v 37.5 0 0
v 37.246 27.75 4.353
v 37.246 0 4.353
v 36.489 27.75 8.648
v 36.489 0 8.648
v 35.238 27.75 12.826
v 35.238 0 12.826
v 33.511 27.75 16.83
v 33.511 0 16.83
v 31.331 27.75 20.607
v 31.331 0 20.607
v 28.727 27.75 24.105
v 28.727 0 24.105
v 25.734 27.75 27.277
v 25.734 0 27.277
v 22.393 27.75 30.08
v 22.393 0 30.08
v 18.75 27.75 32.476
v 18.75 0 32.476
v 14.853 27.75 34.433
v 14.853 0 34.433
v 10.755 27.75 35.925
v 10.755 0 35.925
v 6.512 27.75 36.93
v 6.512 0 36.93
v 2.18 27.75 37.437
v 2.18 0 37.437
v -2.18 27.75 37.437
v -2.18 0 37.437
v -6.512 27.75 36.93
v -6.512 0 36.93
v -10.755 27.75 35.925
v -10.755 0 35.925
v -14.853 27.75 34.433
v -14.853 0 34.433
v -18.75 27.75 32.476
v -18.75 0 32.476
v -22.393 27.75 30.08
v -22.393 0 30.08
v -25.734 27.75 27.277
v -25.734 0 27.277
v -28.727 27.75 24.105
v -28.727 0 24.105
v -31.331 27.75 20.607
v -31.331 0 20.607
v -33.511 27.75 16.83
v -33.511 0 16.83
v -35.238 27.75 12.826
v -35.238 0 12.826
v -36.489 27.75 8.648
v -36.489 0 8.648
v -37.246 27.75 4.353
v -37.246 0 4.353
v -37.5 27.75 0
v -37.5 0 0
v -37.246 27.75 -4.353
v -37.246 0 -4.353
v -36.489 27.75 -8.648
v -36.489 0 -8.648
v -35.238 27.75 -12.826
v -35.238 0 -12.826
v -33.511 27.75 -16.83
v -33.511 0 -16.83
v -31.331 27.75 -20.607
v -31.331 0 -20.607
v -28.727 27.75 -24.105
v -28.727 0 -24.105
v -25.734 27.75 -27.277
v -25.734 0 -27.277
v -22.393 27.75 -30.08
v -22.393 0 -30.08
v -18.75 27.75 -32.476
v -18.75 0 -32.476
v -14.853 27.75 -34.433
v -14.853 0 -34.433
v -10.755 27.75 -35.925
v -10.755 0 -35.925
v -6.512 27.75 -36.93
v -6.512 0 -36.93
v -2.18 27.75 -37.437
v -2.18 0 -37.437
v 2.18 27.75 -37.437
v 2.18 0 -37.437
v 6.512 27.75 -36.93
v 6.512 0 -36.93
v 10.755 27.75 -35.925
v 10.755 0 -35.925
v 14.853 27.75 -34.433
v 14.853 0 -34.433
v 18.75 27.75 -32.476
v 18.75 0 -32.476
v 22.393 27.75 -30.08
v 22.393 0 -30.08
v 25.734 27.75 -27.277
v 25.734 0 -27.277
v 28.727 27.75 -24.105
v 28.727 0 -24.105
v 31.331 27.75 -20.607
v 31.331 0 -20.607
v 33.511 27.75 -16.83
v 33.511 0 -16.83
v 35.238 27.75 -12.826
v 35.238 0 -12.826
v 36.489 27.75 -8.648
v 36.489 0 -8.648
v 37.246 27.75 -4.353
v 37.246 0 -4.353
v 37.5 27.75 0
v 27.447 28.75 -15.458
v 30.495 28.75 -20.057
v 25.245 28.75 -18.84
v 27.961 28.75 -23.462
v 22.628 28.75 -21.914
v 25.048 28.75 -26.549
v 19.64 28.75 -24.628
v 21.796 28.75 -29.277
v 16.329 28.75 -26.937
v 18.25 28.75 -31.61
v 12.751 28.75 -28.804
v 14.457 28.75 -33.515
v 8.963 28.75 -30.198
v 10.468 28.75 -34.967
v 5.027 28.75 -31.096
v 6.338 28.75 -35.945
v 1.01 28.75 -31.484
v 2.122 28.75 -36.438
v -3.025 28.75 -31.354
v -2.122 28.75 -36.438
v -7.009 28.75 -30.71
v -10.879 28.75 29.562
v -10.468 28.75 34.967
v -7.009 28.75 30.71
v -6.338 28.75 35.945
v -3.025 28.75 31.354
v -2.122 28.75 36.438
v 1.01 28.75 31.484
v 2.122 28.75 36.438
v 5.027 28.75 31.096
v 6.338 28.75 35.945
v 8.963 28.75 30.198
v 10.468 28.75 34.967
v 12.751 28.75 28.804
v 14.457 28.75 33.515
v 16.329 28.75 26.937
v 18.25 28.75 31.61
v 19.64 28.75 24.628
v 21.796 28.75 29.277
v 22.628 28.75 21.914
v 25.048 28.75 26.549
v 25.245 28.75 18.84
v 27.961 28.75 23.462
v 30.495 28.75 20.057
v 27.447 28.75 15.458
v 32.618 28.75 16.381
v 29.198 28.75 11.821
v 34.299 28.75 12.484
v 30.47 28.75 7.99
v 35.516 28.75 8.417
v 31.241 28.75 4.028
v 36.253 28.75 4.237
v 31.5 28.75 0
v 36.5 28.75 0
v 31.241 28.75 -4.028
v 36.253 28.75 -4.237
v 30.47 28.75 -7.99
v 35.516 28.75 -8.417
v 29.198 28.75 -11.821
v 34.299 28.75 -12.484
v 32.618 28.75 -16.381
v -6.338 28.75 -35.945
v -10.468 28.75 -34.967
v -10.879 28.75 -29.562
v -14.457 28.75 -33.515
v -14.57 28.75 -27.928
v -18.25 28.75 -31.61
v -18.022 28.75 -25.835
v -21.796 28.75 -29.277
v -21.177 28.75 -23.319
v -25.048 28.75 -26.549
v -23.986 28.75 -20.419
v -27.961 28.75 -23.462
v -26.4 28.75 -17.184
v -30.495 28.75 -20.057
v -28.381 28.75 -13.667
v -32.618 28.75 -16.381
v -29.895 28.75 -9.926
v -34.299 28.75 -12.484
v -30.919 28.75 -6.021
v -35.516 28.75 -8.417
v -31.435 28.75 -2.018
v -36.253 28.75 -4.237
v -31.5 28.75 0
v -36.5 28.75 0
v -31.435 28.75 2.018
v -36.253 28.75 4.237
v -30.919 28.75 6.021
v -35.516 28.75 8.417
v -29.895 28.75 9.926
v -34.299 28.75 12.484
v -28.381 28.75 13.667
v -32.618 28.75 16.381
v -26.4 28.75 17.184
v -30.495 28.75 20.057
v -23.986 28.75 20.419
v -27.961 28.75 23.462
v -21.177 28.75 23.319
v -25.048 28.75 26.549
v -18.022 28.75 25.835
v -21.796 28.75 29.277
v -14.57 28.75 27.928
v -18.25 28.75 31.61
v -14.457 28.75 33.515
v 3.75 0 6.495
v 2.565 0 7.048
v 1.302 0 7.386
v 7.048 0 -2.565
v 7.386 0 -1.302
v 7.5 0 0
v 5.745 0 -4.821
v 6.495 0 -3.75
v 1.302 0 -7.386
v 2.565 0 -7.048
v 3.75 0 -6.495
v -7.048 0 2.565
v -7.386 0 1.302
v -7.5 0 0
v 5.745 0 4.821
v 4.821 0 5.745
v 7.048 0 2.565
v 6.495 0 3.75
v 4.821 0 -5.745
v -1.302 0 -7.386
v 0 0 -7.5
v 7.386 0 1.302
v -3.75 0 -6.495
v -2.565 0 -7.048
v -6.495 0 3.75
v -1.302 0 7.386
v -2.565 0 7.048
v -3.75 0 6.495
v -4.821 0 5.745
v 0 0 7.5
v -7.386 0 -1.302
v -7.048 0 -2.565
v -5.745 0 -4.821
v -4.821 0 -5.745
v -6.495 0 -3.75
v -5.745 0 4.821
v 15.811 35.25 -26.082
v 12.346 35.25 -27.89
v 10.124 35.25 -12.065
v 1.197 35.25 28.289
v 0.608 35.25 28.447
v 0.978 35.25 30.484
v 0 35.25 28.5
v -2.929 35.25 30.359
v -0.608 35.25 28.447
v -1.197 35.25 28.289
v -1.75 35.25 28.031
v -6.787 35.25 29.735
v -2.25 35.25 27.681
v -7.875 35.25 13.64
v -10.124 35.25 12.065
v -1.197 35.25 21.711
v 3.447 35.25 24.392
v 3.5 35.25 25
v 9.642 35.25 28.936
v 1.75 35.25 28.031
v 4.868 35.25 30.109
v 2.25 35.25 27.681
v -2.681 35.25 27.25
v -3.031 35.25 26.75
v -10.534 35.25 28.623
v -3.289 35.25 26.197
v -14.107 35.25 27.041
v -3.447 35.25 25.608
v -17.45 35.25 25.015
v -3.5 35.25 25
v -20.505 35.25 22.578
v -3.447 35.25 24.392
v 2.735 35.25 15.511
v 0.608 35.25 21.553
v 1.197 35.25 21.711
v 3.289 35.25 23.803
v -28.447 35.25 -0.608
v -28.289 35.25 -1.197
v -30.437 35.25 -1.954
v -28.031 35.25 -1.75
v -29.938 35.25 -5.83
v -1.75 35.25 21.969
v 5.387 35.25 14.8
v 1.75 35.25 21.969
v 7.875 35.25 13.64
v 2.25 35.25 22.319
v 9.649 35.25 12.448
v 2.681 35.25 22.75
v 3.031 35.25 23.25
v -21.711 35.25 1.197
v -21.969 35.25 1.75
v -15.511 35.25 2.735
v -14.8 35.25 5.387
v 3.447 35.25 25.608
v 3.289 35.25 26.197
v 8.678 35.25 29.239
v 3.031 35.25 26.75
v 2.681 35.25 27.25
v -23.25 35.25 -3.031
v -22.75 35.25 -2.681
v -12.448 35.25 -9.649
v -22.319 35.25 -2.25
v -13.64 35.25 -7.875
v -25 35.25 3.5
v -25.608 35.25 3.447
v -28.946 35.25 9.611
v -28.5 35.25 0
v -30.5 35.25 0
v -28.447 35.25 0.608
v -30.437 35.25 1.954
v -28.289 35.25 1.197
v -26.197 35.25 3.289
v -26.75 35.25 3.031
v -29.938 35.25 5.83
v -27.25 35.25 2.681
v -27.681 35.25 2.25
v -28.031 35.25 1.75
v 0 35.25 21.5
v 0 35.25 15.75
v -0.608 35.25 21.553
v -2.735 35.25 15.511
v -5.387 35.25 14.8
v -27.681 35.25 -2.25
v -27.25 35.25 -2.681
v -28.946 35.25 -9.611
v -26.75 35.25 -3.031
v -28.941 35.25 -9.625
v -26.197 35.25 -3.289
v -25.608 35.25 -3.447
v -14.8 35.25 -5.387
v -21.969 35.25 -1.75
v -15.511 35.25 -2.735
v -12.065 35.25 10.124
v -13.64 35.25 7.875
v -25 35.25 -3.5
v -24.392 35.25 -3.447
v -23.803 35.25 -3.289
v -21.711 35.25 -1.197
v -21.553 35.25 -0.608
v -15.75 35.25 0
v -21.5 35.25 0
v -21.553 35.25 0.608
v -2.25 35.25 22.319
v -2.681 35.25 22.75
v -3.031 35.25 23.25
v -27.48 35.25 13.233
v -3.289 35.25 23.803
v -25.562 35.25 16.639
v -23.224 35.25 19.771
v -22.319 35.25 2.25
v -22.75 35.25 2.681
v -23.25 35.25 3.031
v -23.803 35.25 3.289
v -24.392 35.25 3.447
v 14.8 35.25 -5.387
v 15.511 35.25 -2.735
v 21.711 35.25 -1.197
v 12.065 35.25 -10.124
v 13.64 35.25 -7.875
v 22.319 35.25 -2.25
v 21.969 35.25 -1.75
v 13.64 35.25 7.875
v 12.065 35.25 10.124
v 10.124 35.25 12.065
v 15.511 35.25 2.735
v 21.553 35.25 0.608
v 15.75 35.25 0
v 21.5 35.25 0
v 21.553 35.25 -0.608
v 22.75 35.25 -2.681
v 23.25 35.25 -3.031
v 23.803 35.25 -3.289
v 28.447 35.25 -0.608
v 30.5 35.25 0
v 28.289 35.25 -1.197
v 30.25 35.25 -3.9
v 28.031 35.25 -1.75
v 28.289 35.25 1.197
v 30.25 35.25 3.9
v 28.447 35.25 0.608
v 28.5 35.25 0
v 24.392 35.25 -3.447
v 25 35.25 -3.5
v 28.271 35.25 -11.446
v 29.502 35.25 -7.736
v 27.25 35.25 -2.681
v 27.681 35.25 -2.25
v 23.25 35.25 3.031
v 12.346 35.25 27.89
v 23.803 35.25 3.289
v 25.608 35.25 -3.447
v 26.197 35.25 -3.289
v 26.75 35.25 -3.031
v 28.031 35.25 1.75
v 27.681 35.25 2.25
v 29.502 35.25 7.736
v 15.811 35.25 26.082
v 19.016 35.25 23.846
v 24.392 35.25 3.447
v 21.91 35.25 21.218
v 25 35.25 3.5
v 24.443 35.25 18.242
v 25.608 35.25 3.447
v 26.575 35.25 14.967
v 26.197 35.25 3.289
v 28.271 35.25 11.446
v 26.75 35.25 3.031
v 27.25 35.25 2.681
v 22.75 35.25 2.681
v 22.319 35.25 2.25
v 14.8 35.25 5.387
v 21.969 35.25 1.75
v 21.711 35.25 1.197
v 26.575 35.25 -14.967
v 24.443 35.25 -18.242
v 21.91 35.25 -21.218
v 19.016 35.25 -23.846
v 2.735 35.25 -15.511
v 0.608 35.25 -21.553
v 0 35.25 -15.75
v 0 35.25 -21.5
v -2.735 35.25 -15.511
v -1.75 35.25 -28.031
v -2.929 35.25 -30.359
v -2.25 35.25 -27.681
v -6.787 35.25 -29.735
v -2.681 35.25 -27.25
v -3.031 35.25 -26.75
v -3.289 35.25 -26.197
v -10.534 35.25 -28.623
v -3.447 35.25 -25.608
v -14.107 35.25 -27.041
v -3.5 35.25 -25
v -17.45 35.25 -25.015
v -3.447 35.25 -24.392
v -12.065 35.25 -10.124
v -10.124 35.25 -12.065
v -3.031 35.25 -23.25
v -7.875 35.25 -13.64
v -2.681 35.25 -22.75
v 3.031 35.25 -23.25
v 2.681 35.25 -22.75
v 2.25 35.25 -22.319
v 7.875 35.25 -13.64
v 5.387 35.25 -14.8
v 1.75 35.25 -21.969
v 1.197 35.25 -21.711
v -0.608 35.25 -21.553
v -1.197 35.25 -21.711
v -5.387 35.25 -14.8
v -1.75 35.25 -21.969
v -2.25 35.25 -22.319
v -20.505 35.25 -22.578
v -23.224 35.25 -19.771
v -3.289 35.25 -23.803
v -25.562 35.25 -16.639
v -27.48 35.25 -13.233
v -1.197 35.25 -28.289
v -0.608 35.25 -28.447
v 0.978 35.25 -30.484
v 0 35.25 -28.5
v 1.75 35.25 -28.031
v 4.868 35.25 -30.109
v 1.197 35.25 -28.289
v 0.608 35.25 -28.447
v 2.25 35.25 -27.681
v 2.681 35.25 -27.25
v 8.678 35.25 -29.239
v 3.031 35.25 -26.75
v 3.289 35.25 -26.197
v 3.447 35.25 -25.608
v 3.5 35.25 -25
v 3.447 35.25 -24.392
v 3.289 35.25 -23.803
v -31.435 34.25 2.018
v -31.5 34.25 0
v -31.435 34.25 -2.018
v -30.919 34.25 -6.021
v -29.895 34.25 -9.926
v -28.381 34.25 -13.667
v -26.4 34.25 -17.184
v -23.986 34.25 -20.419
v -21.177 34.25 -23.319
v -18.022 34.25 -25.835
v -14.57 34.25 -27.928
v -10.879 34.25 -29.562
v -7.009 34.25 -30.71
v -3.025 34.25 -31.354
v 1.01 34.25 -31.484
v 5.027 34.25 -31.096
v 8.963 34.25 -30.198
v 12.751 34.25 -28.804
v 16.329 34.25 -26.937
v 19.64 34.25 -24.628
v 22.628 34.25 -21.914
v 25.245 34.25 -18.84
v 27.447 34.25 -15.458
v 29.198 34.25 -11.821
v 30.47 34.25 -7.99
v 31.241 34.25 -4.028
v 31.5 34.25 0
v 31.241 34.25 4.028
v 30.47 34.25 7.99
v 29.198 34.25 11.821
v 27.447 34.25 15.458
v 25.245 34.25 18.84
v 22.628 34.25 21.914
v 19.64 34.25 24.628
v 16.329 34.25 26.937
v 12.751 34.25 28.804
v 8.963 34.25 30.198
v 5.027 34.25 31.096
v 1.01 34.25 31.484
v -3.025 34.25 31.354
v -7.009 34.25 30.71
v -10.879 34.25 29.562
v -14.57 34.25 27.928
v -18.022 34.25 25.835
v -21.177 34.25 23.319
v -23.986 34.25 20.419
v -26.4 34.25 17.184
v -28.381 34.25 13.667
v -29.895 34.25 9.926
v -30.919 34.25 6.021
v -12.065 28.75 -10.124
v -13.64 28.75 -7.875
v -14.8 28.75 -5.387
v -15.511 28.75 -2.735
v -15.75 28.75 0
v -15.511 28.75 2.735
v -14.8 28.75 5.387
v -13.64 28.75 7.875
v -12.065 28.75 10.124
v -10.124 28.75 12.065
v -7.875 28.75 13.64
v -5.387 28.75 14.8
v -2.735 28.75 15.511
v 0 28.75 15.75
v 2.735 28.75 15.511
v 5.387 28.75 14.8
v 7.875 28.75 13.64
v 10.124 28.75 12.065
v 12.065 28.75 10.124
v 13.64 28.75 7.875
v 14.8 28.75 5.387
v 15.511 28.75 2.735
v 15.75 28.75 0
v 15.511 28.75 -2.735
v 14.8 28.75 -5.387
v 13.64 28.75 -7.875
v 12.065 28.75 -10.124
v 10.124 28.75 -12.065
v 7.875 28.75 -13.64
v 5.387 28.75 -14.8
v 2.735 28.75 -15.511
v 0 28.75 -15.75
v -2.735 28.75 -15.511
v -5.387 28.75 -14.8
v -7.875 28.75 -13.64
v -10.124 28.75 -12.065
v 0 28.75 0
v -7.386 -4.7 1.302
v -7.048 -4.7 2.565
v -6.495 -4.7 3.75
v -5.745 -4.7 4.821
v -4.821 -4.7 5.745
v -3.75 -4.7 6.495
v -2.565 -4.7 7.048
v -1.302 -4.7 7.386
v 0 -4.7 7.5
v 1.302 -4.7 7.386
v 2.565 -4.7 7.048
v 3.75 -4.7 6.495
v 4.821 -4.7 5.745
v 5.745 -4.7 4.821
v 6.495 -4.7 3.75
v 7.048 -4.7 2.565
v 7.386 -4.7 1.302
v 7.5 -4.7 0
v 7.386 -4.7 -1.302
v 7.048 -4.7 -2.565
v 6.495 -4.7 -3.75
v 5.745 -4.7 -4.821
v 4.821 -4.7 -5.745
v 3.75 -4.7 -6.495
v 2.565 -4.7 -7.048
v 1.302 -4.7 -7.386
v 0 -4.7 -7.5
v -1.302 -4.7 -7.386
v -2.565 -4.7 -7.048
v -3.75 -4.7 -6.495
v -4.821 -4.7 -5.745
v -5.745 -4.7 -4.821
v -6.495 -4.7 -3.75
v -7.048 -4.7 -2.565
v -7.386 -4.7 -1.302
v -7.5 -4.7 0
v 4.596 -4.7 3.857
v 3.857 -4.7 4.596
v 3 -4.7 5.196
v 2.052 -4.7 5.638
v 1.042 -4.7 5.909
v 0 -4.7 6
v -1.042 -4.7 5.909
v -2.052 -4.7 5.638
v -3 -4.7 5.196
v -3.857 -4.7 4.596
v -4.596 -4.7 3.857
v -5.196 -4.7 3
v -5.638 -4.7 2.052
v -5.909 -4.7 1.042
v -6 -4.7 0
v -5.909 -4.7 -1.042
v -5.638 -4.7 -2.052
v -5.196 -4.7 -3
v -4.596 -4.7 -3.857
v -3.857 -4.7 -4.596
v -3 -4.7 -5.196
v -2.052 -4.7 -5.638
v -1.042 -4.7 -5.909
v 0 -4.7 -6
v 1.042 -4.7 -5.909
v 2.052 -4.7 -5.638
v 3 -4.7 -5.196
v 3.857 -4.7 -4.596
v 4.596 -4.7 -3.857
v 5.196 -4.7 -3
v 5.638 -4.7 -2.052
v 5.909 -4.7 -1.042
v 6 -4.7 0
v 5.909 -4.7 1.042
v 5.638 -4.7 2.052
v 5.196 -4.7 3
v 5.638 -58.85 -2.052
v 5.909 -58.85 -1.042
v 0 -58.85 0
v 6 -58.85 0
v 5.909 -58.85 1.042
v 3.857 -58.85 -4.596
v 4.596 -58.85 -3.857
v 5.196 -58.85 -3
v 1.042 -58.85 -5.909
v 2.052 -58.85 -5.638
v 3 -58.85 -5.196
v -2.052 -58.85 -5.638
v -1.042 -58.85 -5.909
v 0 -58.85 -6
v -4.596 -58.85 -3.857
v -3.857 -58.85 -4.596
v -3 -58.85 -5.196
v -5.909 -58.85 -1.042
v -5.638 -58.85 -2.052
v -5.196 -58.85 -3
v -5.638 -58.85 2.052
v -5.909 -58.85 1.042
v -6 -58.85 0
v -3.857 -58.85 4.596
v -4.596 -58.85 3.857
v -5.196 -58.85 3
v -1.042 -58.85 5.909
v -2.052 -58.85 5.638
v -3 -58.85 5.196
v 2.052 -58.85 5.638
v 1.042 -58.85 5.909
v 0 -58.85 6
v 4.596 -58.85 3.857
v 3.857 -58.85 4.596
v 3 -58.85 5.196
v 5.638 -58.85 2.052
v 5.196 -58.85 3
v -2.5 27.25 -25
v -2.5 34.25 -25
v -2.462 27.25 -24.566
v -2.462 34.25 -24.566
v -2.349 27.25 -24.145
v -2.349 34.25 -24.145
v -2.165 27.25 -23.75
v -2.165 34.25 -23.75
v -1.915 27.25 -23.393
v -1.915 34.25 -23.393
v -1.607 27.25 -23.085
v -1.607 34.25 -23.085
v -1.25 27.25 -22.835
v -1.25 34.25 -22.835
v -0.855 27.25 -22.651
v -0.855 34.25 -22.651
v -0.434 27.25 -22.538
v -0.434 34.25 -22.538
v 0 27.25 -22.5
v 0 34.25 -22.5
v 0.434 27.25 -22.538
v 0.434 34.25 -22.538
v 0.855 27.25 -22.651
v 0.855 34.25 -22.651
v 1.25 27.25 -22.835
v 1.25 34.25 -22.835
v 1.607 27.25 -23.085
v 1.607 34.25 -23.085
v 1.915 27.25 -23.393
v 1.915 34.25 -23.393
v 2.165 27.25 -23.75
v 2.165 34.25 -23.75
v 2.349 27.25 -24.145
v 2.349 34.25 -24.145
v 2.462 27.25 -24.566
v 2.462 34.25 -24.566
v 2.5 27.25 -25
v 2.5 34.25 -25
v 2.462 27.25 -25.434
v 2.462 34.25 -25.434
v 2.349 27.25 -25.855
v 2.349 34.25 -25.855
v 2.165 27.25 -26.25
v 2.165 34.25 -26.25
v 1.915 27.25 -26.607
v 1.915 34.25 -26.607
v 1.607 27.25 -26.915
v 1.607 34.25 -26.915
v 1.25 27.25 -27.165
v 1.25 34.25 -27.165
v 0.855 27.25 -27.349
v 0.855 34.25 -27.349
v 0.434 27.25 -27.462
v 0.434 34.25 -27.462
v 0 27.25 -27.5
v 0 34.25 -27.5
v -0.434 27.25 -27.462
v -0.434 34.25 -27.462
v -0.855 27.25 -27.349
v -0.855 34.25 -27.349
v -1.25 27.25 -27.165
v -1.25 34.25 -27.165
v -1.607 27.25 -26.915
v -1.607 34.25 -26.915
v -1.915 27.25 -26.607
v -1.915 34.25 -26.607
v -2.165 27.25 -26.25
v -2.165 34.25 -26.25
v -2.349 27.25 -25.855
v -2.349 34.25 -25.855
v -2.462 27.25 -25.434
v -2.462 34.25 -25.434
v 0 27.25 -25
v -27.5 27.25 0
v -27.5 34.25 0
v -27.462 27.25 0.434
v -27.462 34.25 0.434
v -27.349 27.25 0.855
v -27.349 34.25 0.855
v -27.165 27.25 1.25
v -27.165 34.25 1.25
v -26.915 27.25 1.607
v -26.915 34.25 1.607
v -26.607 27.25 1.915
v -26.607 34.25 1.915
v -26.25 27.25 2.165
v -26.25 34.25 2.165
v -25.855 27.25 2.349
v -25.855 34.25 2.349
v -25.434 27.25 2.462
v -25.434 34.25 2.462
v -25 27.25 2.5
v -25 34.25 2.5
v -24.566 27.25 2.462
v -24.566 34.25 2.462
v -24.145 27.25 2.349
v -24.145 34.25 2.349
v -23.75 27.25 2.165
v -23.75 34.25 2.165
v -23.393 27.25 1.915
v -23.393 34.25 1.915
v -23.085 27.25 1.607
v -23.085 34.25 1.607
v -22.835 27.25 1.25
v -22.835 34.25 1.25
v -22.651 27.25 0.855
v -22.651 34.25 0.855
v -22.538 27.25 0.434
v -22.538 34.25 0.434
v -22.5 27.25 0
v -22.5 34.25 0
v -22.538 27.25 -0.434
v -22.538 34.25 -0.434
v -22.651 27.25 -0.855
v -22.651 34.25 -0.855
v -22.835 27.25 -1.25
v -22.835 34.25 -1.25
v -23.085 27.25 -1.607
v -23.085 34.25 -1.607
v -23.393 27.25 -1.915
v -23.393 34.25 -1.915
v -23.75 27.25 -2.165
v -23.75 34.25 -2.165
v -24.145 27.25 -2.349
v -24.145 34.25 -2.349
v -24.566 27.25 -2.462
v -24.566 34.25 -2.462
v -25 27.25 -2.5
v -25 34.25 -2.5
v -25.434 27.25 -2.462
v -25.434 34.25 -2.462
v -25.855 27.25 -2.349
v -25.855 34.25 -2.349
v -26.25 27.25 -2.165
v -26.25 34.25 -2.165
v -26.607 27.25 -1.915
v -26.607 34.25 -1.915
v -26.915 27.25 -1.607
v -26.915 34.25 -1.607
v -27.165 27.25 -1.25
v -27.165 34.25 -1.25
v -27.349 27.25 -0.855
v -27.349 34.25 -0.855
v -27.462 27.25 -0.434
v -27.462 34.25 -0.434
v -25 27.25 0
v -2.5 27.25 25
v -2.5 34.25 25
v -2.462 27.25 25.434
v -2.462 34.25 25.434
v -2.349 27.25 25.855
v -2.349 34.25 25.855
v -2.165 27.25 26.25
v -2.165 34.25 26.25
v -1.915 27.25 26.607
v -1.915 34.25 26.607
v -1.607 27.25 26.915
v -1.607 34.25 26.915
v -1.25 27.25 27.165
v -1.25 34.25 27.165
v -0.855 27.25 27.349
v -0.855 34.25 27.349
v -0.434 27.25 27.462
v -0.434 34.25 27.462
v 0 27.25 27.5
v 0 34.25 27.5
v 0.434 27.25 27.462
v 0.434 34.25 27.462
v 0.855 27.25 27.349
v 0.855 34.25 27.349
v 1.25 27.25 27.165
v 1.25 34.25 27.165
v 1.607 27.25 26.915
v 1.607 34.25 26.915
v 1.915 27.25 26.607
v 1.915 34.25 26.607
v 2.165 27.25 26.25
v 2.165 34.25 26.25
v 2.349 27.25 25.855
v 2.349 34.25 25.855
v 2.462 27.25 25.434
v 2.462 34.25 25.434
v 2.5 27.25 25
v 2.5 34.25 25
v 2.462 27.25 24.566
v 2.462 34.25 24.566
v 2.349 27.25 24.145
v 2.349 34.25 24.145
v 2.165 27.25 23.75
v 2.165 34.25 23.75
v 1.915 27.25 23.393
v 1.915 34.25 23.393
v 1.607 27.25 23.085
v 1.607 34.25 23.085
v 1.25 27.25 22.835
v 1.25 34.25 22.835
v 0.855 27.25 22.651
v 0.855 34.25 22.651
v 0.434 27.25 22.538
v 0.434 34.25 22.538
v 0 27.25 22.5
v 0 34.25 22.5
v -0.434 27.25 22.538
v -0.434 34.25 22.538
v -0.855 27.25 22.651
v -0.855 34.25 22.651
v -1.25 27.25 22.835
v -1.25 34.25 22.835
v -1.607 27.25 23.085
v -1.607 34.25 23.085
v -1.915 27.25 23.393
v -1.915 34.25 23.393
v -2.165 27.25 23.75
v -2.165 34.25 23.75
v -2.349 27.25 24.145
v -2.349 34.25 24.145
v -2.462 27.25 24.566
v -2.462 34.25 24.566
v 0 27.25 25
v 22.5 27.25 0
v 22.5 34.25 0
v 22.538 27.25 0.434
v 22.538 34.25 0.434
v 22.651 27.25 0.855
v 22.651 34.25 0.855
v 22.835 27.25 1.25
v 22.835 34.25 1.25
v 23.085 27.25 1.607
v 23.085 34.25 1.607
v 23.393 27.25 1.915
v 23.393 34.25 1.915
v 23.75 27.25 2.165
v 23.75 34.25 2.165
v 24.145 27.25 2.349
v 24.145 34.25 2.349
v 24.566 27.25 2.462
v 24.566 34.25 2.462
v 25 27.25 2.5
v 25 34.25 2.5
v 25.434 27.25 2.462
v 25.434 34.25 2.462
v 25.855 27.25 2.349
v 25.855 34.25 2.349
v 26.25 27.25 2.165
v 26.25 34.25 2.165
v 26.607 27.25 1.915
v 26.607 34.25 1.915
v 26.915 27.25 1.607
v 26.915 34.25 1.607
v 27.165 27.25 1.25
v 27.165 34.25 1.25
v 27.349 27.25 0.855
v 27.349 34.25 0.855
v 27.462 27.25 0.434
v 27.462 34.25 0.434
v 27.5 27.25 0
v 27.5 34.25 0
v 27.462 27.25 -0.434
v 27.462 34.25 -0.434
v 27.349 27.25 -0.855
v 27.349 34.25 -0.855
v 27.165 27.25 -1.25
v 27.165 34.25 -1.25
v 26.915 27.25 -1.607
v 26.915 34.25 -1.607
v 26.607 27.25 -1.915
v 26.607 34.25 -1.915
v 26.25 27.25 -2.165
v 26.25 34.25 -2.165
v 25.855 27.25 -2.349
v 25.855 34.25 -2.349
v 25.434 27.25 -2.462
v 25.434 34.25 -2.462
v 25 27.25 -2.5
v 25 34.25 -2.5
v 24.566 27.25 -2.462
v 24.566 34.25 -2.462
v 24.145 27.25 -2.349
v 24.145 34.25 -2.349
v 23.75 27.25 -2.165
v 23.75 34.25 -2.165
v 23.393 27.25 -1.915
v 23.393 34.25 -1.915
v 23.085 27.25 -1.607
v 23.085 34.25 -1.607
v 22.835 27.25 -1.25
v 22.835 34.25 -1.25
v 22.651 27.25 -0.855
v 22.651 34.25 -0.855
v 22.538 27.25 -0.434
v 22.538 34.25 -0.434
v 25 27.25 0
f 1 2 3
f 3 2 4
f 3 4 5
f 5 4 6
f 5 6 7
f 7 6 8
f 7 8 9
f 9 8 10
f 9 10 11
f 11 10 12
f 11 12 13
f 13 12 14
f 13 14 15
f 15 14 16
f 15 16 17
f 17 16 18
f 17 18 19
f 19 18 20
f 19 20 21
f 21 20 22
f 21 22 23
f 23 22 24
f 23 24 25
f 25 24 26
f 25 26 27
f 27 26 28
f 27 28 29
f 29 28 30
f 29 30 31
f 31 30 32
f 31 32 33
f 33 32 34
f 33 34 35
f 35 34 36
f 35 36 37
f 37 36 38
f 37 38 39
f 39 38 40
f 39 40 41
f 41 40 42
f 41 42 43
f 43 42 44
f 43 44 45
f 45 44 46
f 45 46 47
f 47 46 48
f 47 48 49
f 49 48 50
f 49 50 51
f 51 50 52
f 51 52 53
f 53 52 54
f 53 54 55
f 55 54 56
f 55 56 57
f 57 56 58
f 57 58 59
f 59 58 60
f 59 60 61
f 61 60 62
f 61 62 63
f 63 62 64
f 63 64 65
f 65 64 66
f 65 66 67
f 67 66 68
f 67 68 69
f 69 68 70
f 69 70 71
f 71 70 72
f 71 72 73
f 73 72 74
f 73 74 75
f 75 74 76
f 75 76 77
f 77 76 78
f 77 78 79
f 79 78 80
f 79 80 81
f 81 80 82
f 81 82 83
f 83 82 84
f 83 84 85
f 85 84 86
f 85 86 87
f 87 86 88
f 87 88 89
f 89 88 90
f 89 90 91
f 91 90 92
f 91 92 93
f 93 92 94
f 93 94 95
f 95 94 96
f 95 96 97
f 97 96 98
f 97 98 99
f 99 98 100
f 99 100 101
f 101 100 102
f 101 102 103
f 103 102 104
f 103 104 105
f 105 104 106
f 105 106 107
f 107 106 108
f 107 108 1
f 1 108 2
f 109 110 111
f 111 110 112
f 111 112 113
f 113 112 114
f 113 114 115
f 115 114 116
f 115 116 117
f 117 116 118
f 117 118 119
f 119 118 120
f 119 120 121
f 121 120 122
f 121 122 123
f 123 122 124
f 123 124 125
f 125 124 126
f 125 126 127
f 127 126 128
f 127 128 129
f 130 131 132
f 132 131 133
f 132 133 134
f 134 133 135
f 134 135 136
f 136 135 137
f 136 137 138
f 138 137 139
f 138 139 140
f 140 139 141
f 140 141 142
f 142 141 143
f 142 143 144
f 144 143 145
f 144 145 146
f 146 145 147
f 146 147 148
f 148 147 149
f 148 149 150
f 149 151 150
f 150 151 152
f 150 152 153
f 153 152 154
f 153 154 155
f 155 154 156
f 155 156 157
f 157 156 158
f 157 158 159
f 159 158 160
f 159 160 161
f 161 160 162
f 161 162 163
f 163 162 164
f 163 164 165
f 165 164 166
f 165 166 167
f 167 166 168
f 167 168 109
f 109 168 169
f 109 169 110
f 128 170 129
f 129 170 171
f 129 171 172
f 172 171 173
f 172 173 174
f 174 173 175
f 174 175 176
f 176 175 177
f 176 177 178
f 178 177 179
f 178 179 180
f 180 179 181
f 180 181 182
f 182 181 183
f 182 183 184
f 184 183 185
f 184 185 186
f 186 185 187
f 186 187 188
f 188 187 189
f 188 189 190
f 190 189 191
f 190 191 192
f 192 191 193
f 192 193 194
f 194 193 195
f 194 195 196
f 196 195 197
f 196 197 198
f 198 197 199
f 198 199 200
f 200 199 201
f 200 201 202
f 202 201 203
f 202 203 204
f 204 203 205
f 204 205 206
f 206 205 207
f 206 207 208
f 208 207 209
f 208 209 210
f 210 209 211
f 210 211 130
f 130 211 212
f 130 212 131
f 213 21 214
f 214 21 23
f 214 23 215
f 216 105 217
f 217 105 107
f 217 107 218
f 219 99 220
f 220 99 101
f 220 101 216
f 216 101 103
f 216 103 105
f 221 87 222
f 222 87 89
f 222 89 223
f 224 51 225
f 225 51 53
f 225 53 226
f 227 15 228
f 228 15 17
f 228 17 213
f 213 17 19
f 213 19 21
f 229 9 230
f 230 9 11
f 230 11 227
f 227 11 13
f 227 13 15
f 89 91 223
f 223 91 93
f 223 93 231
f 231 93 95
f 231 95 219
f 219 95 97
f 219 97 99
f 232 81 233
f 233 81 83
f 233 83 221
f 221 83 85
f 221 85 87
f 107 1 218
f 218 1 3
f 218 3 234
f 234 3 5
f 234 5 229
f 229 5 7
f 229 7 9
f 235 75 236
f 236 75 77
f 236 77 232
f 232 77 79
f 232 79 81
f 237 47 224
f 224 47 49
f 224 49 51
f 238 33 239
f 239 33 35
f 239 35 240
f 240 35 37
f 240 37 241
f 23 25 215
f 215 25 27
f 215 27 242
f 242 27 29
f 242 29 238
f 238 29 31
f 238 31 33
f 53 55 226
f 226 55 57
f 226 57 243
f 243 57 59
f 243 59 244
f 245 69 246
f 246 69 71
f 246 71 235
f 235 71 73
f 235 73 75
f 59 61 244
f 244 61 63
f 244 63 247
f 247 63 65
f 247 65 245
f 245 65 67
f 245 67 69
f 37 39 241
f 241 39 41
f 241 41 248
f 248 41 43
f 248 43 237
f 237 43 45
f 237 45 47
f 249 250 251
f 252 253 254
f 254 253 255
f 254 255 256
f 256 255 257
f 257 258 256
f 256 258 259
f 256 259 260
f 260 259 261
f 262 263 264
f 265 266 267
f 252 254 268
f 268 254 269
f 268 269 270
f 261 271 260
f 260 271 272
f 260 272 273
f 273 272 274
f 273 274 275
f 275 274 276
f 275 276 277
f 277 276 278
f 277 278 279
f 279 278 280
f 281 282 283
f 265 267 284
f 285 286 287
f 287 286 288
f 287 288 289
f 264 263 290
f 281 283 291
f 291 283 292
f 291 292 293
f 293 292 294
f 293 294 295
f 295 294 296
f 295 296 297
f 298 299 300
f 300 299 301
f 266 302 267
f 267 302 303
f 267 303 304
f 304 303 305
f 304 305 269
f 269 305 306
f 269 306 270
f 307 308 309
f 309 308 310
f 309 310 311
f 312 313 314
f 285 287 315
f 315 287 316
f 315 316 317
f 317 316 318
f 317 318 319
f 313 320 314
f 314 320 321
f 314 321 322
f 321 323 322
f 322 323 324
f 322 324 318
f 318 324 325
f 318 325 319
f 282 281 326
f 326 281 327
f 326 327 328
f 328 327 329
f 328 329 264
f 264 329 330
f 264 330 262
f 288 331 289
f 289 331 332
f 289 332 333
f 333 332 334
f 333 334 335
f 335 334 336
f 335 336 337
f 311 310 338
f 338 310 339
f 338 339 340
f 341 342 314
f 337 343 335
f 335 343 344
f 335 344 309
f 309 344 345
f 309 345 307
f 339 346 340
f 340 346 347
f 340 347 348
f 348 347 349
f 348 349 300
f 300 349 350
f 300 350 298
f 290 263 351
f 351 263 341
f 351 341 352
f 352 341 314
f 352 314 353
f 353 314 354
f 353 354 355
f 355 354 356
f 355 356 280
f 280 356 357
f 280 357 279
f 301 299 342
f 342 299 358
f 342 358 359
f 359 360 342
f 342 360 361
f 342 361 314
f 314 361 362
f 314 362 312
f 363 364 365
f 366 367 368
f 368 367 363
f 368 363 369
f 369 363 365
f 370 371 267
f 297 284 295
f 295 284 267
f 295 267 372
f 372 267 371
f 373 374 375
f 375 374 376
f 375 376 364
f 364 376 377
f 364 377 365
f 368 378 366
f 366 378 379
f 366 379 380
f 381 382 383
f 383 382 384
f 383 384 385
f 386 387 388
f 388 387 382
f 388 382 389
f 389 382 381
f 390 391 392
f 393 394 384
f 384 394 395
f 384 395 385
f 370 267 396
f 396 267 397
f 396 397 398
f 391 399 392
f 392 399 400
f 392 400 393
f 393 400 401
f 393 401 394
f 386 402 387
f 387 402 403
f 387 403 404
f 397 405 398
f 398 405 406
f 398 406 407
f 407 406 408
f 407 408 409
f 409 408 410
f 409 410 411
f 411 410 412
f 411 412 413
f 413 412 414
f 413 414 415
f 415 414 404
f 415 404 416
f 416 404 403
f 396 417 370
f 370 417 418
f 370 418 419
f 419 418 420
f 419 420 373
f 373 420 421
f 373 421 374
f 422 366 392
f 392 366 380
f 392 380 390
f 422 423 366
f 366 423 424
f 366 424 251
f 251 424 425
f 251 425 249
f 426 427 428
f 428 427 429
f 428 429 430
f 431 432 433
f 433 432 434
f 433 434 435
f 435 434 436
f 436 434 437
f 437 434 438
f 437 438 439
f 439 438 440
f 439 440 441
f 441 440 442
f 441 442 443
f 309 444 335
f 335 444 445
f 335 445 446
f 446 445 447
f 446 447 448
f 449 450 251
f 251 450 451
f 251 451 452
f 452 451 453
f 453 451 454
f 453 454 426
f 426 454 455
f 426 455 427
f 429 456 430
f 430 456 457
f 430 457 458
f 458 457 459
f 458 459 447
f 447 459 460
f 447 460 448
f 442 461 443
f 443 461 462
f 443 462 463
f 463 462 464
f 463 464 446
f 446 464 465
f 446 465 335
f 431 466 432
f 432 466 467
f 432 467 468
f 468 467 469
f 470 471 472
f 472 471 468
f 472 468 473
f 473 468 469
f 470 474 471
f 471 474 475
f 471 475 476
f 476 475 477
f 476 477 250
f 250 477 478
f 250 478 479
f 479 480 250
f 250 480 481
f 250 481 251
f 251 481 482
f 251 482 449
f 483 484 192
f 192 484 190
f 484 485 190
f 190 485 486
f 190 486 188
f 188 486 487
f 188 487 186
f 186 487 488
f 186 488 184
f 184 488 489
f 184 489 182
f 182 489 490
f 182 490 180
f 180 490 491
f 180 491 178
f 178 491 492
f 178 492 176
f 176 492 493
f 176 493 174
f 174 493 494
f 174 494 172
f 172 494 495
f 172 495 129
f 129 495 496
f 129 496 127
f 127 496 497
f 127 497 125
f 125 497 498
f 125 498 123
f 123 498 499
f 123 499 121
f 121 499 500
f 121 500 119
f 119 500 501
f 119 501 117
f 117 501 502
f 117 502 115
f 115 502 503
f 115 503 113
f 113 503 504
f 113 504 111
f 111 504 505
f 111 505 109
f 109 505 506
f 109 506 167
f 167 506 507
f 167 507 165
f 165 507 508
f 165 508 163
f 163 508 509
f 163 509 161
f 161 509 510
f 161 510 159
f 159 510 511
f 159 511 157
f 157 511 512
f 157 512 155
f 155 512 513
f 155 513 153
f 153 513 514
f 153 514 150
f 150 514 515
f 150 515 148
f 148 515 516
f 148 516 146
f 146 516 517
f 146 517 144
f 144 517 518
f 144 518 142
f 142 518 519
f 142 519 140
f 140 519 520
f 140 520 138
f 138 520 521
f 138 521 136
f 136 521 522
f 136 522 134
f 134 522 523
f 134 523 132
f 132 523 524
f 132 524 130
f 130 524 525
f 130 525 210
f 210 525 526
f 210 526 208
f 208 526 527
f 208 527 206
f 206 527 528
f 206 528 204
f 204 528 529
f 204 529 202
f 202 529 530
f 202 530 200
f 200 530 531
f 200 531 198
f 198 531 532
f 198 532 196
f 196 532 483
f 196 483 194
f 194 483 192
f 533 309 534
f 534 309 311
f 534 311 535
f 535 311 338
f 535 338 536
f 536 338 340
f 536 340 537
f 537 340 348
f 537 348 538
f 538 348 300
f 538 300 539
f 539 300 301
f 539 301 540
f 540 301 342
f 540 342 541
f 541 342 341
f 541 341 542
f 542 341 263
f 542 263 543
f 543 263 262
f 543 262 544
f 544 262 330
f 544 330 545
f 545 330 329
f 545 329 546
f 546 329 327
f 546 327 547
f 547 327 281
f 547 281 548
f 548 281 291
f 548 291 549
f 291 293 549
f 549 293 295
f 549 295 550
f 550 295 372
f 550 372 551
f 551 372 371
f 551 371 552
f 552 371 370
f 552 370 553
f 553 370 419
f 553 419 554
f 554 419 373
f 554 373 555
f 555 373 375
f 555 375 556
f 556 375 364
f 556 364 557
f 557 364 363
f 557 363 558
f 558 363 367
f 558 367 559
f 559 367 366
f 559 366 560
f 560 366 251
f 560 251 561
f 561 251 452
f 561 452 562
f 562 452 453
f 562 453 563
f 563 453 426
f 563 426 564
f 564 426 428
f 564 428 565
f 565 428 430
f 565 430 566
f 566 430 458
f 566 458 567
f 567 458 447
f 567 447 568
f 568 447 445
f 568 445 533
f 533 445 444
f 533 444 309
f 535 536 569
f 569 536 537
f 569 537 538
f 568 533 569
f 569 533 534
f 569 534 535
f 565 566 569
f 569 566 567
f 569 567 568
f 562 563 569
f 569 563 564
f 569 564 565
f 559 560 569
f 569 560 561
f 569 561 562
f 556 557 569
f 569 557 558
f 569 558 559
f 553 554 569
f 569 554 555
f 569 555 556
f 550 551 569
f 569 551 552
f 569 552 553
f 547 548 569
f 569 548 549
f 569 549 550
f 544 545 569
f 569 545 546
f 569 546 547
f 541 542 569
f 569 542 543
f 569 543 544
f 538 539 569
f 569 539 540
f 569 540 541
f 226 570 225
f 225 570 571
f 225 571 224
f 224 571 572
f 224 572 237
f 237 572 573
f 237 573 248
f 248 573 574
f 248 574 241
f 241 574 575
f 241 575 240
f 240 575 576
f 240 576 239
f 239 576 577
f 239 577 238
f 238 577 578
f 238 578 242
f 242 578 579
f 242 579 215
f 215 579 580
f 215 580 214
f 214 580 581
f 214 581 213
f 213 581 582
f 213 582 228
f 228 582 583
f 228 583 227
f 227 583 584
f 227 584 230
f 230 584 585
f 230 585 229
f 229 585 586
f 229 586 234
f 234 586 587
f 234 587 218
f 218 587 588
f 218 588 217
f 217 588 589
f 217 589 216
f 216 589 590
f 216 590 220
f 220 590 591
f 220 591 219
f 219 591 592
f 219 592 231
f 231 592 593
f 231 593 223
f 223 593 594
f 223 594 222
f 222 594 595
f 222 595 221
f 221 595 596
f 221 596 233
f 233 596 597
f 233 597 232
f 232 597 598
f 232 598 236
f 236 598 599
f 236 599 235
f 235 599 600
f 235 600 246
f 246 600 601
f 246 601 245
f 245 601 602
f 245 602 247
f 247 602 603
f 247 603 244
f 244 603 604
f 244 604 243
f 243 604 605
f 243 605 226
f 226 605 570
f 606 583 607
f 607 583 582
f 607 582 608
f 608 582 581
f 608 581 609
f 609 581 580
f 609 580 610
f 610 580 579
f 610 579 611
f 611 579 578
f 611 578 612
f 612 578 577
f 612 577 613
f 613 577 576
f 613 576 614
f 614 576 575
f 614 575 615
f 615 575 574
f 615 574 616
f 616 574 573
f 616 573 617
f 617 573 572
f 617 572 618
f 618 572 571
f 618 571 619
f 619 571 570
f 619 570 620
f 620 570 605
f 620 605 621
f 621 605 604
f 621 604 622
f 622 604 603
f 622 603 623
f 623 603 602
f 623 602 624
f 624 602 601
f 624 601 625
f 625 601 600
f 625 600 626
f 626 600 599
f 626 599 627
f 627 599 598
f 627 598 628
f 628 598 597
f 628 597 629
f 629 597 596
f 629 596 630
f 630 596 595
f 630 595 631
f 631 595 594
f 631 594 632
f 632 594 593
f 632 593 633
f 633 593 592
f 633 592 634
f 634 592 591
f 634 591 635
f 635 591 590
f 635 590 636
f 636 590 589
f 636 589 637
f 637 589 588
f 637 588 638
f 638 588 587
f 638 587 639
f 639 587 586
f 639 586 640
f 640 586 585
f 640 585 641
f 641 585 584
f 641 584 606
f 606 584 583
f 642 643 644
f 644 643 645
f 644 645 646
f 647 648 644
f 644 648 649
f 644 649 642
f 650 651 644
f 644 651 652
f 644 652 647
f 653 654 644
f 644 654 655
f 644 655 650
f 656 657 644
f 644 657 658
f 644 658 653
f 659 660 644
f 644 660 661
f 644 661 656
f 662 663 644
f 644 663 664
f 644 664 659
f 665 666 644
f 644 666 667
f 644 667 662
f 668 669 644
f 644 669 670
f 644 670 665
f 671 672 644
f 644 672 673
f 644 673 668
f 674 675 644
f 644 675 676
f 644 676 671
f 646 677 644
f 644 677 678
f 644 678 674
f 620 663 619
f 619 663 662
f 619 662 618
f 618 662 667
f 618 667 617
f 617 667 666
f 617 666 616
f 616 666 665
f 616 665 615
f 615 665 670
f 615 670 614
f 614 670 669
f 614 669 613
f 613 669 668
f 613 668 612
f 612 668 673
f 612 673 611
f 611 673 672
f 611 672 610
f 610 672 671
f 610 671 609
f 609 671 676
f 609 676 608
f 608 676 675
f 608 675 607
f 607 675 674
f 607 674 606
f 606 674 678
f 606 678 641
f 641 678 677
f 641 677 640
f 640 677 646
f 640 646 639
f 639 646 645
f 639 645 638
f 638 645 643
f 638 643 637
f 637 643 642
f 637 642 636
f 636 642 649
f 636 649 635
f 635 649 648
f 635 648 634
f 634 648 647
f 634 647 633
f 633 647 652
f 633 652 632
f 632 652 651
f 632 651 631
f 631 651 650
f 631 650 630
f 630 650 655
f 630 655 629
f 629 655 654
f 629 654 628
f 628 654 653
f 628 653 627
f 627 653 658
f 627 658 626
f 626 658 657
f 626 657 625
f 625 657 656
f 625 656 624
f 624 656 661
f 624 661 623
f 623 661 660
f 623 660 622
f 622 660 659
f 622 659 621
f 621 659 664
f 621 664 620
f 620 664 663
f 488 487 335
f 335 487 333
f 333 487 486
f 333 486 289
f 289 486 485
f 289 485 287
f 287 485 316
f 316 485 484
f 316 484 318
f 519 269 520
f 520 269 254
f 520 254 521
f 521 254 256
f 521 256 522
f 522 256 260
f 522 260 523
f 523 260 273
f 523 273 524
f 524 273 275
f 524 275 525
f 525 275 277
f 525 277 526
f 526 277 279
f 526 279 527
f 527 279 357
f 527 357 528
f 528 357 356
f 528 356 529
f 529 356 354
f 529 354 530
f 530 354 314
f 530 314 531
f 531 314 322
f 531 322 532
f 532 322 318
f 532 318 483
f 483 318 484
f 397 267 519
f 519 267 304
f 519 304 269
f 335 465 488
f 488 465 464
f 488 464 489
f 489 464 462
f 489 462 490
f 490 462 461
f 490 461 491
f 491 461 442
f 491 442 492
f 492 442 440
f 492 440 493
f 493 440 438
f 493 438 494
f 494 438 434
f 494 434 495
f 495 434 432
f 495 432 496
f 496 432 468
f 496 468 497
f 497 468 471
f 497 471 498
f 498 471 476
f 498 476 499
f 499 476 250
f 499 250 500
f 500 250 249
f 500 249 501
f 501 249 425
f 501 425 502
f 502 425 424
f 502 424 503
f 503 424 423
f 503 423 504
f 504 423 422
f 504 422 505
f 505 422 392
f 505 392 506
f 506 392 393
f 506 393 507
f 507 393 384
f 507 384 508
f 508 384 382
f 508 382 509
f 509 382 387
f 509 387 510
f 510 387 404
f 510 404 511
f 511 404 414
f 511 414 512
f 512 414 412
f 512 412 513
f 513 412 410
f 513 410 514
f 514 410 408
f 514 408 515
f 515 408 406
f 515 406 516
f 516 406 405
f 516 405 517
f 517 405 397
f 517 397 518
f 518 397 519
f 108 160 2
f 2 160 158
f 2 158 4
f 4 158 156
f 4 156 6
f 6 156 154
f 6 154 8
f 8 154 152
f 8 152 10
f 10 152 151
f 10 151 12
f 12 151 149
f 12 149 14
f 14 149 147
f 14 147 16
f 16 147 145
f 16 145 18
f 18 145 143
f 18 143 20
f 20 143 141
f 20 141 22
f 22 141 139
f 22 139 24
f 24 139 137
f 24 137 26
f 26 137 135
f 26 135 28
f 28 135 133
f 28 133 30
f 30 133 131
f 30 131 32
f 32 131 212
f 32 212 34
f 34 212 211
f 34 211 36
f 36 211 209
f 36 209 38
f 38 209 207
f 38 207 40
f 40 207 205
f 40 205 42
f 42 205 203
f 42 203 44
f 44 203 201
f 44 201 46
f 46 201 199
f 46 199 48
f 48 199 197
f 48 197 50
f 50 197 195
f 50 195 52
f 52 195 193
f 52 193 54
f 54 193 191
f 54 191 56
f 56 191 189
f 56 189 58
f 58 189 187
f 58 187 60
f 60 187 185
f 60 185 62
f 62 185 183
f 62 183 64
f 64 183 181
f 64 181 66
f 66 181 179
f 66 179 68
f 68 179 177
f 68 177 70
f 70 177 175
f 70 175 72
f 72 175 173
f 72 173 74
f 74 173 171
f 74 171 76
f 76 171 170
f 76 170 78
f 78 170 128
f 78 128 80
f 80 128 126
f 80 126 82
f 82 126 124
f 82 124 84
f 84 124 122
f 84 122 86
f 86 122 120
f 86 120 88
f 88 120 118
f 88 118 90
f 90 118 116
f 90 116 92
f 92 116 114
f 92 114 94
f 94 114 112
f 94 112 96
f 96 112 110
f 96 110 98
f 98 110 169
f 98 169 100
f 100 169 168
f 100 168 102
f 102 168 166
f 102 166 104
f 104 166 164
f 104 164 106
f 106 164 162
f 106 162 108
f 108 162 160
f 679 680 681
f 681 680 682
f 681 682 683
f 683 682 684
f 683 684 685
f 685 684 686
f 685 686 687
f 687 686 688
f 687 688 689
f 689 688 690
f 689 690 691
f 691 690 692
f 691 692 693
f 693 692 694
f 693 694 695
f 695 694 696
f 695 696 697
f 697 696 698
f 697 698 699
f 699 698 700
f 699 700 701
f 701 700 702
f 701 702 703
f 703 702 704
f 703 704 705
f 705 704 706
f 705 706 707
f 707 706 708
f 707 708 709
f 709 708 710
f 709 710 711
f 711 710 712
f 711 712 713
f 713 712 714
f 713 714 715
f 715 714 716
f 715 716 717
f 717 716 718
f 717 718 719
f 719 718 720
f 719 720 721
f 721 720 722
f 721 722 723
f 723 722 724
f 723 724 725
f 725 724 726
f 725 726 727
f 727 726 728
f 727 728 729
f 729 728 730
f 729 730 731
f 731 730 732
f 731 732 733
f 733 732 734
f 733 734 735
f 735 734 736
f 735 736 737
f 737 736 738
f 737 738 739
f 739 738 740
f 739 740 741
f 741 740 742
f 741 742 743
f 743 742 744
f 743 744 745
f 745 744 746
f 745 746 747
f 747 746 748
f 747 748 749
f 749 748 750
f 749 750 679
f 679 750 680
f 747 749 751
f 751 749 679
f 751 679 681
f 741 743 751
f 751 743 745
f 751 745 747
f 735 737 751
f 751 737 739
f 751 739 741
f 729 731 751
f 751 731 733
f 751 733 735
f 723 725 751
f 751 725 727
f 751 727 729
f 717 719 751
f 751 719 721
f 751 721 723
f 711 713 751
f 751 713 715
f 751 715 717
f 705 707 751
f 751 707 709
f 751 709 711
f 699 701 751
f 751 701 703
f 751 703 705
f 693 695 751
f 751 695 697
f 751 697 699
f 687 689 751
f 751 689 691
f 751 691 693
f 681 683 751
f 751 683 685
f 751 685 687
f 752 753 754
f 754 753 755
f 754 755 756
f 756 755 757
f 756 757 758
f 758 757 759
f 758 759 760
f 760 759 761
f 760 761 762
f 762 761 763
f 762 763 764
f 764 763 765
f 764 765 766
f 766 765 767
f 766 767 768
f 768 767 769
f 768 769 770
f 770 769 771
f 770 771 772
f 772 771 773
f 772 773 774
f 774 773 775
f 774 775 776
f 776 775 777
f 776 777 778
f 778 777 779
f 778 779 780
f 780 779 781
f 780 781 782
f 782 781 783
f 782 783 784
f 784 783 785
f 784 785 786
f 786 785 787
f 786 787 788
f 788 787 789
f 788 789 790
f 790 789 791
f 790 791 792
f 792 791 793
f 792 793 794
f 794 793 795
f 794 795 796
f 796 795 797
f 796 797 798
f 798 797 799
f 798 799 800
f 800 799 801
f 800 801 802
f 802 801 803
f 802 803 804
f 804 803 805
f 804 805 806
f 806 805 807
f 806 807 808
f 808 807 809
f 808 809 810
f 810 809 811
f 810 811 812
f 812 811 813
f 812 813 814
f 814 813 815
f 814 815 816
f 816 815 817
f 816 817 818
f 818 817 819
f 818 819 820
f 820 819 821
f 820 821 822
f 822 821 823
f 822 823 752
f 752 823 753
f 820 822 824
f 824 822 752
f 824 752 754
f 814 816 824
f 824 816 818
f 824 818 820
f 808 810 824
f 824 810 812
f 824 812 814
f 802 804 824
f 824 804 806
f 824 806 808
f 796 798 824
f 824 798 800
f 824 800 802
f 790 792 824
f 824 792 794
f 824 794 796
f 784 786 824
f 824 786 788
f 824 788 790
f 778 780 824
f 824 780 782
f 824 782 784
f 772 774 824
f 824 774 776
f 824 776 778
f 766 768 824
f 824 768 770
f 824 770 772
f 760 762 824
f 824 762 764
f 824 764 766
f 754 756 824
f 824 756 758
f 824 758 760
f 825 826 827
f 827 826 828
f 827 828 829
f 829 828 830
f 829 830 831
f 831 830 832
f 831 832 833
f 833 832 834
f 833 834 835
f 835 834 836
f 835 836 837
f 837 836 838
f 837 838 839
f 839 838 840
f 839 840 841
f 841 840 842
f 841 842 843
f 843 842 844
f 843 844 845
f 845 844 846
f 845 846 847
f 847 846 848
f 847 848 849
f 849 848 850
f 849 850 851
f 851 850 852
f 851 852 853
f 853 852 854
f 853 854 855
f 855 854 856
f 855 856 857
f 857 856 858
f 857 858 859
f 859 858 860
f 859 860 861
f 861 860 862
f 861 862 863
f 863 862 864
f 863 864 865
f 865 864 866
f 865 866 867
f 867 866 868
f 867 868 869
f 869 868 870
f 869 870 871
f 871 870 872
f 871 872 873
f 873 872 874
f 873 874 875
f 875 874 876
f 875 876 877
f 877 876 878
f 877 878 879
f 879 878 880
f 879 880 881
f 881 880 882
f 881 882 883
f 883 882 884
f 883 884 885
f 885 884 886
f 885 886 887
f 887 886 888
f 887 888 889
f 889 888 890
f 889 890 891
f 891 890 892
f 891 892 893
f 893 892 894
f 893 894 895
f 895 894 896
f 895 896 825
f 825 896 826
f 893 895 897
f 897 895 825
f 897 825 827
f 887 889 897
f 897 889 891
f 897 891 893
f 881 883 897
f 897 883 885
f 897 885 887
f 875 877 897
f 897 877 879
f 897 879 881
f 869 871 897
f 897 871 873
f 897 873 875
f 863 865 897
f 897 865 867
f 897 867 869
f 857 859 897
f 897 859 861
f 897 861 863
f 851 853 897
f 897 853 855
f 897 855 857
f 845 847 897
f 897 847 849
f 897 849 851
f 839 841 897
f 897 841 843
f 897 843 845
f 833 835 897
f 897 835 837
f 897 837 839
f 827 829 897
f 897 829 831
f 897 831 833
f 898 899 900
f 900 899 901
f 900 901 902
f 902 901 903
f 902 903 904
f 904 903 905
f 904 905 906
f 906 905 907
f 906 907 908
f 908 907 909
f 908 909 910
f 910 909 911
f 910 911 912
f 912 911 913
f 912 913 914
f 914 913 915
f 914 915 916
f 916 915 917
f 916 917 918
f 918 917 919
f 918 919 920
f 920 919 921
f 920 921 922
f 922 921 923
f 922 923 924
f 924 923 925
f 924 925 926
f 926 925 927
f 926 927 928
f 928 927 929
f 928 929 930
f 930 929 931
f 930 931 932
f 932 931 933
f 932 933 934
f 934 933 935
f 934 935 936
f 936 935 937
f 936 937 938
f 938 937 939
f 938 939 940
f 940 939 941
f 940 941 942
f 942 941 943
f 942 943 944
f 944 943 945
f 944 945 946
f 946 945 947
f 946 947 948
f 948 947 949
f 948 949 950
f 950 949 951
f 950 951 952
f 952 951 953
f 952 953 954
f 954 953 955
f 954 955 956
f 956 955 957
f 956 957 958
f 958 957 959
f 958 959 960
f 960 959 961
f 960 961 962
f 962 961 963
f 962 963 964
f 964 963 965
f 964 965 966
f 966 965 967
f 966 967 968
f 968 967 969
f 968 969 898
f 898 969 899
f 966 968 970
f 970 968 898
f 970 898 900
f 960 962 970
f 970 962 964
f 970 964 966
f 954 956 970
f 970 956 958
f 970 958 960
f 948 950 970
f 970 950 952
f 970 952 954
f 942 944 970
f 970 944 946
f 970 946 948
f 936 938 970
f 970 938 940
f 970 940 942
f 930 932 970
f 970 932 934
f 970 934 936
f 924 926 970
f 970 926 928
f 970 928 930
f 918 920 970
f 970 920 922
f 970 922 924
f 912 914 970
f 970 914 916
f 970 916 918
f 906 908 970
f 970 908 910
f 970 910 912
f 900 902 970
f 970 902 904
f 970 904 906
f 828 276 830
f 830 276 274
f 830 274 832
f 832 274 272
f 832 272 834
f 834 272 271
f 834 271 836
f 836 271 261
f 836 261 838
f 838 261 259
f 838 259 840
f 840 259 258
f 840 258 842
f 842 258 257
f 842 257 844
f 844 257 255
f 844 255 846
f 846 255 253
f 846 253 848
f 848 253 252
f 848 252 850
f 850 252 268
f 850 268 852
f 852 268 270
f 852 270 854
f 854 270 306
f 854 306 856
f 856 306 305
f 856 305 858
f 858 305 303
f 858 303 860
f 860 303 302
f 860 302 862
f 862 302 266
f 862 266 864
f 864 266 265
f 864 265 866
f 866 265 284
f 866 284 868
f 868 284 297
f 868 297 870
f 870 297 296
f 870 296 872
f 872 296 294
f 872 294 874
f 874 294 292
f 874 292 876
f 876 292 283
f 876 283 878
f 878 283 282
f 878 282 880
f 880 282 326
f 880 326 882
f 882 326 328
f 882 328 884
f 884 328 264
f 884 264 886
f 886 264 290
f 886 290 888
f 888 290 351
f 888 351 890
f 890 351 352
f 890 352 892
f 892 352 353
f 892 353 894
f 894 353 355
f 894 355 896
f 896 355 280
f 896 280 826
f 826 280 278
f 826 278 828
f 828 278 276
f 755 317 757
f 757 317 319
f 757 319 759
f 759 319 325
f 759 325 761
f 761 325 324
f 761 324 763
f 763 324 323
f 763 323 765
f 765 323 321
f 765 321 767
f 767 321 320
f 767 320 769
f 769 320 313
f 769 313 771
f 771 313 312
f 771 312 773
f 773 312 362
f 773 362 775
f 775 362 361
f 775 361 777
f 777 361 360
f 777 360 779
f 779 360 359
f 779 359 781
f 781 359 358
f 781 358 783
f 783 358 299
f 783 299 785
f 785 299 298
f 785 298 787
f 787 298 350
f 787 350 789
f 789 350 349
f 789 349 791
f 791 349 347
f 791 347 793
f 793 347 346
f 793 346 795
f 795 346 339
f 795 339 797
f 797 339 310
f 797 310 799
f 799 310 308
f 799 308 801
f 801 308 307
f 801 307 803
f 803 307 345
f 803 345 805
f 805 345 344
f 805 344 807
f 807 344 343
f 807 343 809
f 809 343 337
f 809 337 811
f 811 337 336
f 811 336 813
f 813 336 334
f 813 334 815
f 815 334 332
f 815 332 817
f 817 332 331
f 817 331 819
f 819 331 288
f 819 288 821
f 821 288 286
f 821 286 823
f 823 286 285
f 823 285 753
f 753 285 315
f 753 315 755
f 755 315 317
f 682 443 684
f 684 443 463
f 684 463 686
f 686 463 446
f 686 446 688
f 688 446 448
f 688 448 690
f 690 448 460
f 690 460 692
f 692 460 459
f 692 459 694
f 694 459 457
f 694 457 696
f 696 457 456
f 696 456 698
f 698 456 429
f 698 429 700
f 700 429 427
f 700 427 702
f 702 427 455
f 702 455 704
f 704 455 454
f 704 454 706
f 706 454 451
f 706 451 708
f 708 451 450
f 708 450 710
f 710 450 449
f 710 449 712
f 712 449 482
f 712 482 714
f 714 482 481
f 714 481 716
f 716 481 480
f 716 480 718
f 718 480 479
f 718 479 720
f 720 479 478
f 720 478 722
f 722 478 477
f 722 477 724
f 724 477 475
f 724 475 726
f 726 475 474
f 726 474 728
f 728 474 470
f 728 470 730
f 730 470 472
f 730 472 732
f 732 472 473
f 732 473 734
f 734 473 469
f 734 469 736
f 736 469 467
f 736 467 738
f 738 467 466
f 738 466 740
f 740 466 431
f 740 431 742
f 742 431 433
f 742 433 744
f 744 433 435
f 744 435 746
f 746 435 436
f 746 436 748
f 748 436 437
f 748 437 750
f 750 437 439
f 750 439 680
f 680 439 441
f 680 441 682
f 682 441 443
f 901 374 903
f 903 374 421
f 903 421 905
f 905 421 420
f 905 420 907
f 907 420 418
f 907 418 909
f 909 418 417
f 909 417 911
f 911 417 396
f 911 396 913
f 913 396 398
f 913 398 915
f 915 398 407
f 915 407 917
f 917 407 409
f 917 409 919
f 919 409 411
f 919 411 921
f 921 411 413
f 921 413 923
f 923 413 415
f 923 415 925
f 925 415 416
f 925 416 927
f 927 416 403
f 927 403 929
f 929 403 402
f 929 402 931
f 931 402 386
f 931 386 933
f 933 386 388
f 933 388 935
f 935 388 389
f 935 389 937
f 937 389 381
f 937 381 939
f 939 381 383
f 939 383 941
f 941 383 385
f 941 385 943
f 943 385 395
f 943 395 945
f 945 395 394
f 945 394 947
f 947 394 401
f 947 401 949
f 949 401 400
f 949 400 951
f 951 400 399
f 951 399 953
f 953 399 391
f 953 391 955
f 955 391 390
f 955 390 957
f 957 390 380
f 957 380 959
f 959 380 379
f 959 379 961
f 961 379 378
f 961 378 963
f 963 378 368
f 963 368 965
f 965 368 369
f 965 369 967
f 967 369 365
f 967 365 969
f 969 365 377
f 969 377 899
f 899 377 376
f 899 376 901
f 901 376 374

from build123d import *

# Parameters (mm, degrees)
SKETCH1_R           = 37.5
BOSS_EXTRUDE1_DEPTH = 28.75
SKETCH2_R           = 31.5
SKETCH2_R_2         = 15.75
BOSS_EXTRUDE2_DEPTH = 6.5
SKETCH3_R           = 6
BOSS_EXTRUDE3_DEPTH = 58.85
SKETCH4_R           = 7.5
BOSS_EXTRUDE4_DEPTH = 4.7
CHAMFER1_SIZE       = 1
SKETCH5_R           = 2.5
CUT_EXTRUDE1_DEPTH  = 8
CHAMFER2_SIZE       = 1


with BuildPart() as part:
    # Sketch1 → Boss-Extrude1 (new body)
    with BuildSketch(Plane(origin=(0, 0, 0), x_dir=(1, 0, 0), z_dir=(0, 1, 0))):
        with Locations(Location((0, 0, 0), (0, 0, 90))):
            Circle(SKETCH1_R)
    extrude(amount=BOSS_EXTRUDE1_DEPTH)

    # Sketch2 → Boss-Extrude2 (add)
    with BuildSketch(Plane(origin=(0, 28.75, 0), x_dir=(1, 0, 0), z_dir=(0, 1, 0))):
        with Locations(Location((0, 0, 0), (0, 0, 90))):
            Circle(SKETCH2_R)
        with Locations(Location((0, 0, 0), (0, 0, 90))):
            Circle(SKETCH2_R_2, mode=Mode.SUBTRACT)
    extrude(amount=BOSS_EXTRUDE2_DEPTH)

    # Sketch3 → Boss-Extrude3 (add)
    with BuildSketch(Plane.XZ):
        with Locations(Location((0, 0, 0), (0, 0, 270))):
            Circle(SKETCH3_R)
    extrude(amount=BOSS_EXTRUDE3_DEPTH)

    # Sketch4 → Boss-Extrude4 (add)
    with BuildSketch(Plane.XZ):
        with Locations(Location((0, 0, 0), (0, 0, 90))):
            Circle(SKETCH4_R)
    extrude(amount=BOSS_EXTRUDE4_DEPTH)

    # Chamfer1
    chamfer1_edges = [part.edges().sort_by_distance(p)[0] for p in [
        (0, 28.75, 37.5),
        (0, 35.25, 31.5),
    ]]
    chamfer(chamfer1_edges, length=CHAMFER1_SIZE)

    # Sketch5 → Cut-Extrude1 (cut)
    with BuildSketch(Plane(origin=(0, 35.25, 0), x_dir=(1, 0, 0), z_dir=(0, 1, 0))):
        with Locations(Location((0, 25, 0), (0, 0, 270))):
            Circle(SKETCH5_R)
        with Locations(Location((25, 0, 0), (0, 0, 270))):
            Circle(SKETCH5_R)
        with Locations(Location((0, -25, 0), (0, 0, 270))):
            Circle(SKETCH5_R)
        with Locations(Location((-25, 0, 0), (0, 0, 270))):
            Circle(SKETCH5_R)
    extrude(amount=-CUT_EXTRUDE1_DEPTH, mode=Mode.SUBTRACT)

    # Chamfer2
    chamfer2_edges = [part.edges().sort_by_distance(p)[0] for p in [
        (0, 35.25, -27.5),
        (25, 35.25, -2.5),
        (0, 35.25, 22.5),
        (-25, 35.25, -2.5),
    ]]
    chamfer(chamfer2_edges, length=CHAMFER2_SIZE)


solid = part.part
